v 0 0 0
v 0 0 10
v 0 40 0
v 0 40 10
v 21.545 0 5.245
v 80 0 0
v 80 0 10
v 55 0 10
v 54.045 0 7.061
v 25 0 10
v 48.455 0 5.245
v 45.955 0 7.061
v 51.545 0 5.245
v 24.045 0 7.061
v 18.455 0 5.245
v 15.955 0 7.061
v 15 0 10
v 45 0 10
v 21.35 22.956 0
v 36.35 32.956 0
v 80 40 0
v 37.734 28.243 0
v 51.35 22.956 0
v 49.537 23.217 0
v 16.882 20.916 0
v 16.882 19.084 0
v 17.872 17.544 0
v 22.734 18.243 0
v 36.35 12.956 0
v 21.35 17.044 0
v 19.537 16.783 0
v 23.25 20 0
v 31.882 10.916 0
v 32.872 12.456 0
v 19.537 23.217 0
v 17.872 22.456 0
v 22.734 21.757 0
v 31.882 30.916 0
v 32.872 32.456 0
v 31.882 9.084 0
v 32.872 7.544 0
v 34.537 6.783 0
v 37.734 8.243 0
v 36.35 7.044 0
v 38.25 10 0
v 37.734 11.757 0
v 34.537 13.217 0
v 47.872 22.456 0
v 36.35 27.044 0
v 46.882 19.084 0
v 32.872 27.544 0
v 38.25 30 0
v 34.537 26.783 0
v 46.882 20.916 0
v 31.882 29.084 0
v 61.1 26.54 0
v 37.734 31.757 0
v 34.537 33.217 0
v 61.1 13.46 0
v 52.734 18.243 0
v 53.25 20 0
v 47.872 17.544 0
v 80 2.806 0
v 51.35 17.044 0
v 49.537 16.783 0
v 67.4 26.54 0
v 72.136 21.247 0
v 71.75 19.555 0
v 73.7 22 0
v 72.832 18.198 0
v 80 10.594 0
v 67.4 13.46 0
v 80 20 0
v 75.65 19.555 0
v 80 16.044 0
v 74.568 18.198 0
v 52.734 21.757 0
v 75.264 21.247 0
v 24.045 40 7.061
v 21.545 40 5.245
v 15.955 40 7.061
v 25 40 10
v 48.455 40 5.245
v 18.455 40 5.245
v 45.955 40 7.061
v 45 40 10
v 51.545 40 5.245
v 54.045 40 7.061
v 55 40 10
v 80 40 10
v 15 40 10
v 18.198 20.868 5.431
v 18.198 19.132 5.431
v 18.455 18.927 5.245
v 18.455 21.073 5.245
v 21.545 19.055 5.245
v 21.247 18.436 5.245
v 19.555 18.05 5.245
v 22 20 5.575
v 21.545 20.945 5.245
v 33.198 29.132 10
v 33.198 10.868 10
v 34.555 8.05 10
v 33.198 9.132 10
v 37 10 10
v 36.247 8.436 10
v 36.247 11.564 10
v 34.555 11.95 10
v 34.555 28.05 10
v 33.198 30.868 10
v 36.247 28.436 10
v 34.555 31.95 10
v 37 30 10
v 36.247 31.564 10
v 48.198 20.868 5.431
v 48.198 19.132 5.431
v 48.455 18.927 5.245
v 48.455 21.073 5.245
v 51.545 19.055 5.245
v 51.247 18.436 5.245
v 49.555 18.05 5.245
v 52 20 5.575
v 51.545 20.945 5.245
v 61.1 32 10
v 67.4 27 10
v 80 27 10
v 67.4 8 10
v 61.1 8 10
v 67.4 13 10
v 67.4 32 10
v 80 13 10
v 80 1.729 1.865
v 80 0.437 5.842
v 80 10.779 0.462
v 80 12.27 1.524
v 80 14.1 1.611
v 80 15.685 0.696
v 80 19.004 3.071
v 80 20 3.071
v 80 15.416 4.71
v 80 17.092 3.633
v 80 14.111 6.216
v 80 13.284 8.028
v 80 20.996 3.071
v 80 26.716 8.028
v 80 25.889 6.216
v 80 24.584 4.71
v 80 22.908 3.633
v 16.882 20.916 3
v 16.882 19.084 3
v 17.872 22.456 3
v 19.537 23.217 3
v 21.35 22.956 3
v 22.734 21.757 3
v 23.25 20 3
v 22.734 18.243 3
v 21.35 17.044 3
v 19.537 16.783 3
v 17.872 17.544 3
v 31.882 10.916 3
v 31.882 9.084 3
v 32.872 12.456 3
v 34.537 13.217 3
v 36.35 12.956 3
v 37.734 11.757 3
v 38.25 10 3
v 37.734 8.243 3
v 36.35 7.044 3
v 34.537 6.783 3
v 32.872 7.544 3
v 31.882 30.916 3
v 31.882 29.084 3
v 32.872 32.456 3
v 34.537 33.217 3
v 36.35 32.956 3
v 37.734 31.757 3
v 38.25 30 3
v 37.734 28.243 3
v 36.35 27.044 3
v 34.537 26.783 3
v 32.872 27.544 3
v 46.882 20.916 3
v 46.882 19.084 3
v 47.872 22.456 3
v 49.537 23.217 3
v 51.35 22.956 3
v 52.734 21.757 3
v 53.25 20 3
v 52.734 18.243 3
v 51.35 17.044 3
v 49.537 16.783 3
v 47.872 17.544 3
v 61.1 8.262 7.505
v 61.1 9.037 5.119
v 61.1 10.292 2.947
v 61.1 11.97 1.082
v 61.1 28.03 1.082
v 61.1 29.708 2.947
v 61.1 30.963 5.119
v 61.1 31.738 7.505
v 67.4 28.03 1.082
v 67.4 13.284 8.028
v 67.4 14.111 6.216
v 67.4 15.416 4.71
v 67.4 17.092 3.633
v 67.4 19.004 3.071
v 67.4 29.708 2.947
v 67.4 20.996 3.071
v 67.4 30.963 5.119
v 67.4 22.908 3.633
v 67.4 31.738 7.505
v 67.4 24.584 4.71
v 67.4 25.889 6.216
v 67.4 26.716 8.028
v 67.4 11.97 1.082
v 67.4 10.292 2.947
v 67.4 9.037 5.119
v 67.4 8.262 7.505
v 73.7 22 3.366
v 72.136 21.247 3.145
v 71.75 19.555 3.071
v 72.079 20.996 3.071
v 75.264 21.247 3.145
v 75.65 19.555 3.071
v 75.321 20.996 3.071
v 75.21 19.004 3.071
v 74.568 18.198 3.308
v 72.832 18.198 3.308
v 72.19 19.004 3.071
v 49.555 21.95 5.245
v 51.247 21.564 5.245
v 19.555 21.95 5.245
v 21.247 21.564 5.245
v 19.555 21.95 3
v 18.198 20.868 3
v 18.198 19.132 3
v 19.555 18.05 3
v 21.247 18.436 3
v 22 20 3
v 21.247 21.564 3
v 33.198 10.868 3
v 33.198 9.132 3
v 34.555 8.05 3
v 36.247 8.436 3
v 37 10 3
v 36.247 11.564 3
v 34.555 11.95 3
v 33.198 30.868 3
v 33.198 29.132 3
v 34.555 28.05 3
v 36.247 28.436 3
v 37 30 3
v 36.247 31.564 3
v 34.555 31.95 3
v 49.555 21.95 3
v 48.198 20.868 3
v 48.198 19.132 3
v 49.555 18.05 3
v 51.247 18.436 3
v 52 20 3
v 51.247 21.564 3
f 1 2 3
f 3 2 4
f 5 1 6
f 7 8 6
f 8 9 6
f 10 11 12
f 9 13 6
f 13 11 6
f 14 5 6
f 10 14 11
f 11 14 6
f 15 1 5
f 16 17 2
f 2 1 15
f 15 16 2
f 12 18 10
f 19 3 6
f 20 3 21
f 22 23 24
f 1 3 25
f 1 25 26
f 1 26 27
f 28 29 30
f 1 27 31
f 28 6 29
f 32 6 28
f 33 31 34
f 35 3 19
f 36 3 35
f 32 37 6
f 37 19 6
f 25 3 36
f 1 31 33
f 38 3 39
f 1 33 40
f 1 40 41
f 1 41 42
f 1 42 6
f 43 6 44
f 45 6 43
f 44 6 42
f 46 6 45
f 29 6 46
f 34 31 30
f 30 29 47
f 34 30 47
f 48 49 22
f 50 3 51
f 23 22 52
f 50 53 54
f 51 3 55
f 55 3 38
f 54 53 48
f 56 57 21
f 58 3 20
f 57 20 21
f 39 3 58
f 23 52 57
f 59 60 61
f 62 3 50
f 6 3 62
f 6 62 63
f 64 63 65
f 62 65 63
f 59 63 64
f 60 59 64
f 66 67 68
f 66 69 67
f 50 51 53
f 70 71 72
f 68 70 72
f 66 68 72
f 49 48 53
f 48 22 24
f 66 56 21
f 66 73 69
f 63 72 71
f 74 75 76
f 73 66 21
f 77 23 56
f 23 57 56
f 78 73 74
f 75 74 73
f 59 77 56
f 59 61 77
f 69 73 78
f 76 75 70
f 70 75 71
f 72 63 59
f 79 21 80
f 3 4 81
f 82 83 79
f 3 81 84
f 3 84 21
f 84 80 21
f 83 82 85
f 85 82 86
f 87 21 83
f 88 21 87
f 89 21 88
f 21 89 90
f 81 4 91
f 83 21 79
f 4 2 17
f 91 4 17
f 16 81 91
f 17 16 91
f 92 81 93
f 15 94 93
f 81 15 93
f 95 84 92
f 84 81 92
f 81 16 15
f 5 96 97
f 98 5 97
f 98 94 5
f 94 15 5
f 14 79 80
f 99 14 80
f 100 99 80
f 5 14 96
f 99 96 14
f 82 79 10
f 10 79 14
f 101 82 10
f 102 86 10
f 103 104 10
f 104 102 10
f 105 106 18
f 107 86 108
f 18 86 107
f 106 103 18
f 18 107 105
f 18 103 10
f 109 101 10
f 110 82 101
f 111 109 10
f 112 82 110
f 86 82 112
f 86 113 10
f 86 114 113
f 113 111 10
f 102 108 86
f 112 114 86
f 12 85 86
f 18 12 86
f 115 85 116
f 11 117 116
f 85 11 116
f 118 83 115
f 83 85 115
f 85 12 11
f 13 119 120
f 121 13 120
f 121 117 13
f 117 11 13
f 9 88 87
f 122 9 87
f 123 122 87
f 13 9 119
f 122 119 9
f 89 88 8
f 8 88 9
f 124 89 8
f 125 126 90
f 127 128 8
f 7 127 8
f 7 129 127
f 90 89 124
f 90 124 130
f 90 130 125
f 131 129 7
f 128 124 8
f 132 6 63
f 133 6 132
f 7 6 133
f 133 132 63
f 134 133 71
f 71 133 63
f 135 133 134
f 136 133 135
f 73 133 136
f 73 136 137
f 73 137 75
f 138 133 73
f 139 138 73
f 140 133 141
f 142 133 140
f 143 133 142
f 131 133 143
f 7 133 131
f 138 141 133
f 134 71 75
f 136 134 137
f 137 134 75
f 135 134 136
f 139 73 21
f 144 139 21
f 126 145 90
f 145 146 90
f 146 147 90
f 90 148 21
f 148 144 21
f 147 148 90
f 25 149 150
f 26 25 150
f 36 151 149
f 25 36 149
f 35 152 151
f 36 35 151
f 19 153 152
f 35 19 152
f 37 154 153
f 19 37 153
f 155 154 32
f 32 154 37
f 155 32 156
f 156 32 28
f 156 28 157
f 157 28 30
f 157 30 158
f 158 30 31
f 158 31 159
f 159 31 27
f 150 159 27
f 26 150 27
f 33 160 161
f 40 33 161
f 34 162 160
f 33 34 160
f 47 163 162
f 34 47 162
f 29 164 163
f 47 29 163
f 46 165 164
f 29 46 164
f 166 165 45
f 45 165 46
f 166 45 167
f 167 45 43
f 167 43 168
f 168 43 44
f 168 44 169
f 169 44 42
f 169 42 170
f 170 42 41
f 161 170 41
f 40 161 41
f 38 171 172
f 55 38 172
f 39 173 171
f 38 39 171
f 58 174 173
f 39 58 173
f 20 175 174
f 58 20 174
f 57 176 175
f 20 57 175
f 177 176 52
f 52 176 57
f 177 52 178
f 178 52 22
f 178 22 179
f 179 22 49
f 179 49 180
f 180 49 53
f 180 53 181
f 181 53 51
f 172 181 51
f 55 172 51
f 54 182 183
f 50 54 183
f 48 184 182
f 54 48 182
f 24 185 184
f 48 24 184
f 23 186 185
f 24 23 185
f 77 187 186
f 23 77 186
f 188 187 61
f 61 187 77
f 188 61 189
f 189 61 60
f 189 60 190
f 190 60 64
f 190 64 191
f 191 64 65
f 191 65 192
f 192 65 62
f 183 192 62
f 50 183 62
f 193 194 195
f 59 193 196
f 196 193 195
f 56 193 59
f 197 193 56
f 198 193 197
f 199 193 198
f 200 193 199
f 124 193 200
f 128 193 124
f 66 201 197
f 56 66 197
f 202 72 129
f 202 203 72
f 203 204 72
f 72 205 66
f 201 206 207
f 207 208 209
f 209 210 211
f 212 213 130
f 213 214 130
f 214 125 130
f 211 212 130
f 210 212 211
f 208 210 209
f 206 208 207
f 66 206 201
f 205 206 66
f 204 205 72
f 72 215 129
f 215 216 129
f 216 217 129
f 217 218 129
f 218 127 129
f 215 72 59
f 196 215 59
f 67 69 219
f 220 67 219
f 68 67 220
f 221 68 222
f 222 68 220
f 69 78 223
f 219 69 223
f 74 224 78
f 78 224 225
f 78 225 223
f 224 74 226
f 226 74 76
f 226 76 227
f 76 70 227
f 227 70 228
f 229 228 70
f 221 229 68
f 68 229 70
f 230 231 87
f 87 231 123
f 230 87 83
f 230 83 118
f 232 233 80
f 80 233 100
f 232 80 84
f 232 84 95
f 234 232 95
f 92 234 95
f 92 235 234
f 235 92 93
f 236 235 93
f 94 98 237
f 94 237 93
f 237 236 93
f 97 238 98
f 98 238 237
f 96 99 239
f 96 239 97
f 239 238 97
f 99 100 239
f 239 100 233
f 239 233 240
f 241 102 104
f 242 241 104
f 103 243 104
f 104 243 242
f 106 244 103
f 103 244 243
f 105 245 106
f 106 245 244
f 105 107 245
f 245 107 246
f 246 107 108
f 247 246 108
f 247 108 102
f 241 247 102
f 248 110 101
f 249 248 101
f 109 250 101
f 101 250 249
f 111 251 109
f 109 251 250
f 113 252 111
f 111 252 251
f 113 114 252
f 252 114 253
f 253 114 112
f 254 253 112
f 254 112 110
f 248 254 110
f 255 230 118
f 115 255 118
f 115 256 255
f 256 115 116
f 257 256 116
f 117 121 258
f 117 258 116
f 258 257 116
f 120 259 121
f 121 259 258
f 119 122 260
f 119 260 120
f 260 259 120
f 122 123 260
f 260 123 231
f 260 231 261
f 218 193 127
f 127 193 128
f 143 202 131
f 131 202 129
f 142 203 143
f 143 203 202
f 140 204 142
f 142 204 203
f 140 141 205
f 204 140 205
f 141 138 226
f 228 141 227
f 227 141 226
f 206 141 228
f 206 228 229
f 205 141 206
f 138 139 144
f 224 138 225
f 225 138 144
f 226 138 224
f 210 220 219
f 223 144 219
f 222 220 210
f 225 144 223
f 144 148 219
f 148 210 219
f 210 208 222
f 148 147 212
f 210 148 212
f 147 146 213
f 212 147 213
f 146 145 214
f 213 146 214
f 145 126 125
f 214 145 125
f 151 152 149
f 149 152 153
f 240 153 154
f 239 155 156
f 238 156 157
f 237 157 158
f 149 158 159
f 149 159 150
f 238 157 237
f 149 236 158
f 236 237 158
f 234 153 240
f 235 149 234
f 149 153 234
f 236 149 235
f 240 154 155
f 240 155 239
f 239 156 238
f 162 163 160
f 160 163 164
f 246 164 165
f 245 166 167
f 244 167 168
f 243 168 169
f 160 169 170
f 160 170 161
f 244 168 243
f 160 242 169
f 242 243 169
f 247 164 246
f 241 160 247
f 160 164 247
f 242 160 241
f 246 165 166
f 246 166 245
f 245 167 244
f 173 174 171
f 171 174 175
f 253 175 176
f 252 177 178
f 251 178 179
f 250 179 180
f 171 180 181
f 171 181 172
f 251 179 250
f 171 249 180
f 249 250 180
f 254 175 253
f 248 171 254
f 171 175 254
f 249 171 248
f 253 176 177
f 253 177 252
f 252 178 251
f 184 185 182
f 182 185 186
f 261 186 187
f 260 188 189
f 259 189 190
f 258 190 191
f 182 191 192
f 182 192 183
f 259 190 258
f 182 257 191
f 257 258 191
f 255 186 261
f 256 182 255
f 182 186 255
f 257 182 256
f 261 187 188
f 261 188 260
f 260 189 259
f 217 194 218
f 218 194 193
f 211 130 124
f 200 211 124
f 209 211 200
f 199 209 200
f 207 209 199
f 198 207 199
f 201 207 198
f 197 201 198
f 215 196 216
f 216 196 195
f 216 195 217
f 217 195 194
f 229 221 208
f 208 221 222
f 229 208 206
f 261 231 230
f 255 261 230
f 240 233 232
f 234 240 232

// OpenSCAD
// file: stanley.scad
use <hardware.scad>

module stanley(solid_screw = false) {
	motor_r = 20;
	stem_r = 7;
	retainer_r = 12;
	motor_disk_height = 6.3;
	union() {
		difference() {
			cylinder(r=motor_r, h=motor_disk_height);
			for (i = [0:2]) {
				rotate(v=[0,0,1], a = i * 120)
					translate(v=[2 * motor_r / 3, 0, 0])
						m3();
			}
		}
	
		difference() {
			translate(v=[0, 0, -motor_disk_height * 2])
				cylinder(r=stem_r, h=motor_disk_height * 2);
			if (!solid_screw)
				translate(v=[0, 10, -motor_disk_height])
					rotate (v=[1, 0, 0], 90) m3(40);
		}

		translate(v=[0, 0, -motor_disk_height * 3])
			cylinder(r=retainer_r, h=motor_disk_height);

		if (solid_screw) {
			translate(v=[0, 20, -motor_disk_height])
				rotate (v=[1, 0, 0], 90) m3(40);
		}
	}
}

stanley();
// file: hardware.scad
axle_r = 5;
axle_separation = 30;

module axle(h) {
	rotate(v=[-1,0,0], a=90) cylinder(r=axle_r, h=h, $fn=10);
}

module axlepair(h=100) {
	union() {
		axle(h);
		translate(v=[axle_separation, 0, 0]) axle(h);
	}
}

module m3(h=16) {
	union() {
		cylinder(r=3.25, h=3);
		cylinder(r=2, h=h);
	}
}

module m5(h=16) {
	union() {
		cylinder(r=4.5, h=5);
		cylinder(r=3, h=h);
	}
}
// main file
include <hardware.scad>
use <stanley.scad>

module fred() {
	h = 2 * axle_r;
	difference() {
		cube([80, 40, h]);

		translate(v=[20, -10, h]) axlepair();

		translate(v=[20 + axle_separation / 2, 0, 0]) {
			union() {
				translate(v=[0,10,0]) m3();
				translate(v=[0,30,0]) m3();
			}
		}

		translate(v=[80, 20, 10]) {
			rotate(v=[1,0,0], 90) 
				rotate(v=[0,1,0], 90) stanley(solid_screw=true);
		}

		for (v = [[20,20,0],[20+axle_separation,20,0],
			     [20+axle_separation/2, 10, 0],
				[20+axle_separation/2, 30, 0]])
			translate(v=v) m3();
	}
}

fred();
